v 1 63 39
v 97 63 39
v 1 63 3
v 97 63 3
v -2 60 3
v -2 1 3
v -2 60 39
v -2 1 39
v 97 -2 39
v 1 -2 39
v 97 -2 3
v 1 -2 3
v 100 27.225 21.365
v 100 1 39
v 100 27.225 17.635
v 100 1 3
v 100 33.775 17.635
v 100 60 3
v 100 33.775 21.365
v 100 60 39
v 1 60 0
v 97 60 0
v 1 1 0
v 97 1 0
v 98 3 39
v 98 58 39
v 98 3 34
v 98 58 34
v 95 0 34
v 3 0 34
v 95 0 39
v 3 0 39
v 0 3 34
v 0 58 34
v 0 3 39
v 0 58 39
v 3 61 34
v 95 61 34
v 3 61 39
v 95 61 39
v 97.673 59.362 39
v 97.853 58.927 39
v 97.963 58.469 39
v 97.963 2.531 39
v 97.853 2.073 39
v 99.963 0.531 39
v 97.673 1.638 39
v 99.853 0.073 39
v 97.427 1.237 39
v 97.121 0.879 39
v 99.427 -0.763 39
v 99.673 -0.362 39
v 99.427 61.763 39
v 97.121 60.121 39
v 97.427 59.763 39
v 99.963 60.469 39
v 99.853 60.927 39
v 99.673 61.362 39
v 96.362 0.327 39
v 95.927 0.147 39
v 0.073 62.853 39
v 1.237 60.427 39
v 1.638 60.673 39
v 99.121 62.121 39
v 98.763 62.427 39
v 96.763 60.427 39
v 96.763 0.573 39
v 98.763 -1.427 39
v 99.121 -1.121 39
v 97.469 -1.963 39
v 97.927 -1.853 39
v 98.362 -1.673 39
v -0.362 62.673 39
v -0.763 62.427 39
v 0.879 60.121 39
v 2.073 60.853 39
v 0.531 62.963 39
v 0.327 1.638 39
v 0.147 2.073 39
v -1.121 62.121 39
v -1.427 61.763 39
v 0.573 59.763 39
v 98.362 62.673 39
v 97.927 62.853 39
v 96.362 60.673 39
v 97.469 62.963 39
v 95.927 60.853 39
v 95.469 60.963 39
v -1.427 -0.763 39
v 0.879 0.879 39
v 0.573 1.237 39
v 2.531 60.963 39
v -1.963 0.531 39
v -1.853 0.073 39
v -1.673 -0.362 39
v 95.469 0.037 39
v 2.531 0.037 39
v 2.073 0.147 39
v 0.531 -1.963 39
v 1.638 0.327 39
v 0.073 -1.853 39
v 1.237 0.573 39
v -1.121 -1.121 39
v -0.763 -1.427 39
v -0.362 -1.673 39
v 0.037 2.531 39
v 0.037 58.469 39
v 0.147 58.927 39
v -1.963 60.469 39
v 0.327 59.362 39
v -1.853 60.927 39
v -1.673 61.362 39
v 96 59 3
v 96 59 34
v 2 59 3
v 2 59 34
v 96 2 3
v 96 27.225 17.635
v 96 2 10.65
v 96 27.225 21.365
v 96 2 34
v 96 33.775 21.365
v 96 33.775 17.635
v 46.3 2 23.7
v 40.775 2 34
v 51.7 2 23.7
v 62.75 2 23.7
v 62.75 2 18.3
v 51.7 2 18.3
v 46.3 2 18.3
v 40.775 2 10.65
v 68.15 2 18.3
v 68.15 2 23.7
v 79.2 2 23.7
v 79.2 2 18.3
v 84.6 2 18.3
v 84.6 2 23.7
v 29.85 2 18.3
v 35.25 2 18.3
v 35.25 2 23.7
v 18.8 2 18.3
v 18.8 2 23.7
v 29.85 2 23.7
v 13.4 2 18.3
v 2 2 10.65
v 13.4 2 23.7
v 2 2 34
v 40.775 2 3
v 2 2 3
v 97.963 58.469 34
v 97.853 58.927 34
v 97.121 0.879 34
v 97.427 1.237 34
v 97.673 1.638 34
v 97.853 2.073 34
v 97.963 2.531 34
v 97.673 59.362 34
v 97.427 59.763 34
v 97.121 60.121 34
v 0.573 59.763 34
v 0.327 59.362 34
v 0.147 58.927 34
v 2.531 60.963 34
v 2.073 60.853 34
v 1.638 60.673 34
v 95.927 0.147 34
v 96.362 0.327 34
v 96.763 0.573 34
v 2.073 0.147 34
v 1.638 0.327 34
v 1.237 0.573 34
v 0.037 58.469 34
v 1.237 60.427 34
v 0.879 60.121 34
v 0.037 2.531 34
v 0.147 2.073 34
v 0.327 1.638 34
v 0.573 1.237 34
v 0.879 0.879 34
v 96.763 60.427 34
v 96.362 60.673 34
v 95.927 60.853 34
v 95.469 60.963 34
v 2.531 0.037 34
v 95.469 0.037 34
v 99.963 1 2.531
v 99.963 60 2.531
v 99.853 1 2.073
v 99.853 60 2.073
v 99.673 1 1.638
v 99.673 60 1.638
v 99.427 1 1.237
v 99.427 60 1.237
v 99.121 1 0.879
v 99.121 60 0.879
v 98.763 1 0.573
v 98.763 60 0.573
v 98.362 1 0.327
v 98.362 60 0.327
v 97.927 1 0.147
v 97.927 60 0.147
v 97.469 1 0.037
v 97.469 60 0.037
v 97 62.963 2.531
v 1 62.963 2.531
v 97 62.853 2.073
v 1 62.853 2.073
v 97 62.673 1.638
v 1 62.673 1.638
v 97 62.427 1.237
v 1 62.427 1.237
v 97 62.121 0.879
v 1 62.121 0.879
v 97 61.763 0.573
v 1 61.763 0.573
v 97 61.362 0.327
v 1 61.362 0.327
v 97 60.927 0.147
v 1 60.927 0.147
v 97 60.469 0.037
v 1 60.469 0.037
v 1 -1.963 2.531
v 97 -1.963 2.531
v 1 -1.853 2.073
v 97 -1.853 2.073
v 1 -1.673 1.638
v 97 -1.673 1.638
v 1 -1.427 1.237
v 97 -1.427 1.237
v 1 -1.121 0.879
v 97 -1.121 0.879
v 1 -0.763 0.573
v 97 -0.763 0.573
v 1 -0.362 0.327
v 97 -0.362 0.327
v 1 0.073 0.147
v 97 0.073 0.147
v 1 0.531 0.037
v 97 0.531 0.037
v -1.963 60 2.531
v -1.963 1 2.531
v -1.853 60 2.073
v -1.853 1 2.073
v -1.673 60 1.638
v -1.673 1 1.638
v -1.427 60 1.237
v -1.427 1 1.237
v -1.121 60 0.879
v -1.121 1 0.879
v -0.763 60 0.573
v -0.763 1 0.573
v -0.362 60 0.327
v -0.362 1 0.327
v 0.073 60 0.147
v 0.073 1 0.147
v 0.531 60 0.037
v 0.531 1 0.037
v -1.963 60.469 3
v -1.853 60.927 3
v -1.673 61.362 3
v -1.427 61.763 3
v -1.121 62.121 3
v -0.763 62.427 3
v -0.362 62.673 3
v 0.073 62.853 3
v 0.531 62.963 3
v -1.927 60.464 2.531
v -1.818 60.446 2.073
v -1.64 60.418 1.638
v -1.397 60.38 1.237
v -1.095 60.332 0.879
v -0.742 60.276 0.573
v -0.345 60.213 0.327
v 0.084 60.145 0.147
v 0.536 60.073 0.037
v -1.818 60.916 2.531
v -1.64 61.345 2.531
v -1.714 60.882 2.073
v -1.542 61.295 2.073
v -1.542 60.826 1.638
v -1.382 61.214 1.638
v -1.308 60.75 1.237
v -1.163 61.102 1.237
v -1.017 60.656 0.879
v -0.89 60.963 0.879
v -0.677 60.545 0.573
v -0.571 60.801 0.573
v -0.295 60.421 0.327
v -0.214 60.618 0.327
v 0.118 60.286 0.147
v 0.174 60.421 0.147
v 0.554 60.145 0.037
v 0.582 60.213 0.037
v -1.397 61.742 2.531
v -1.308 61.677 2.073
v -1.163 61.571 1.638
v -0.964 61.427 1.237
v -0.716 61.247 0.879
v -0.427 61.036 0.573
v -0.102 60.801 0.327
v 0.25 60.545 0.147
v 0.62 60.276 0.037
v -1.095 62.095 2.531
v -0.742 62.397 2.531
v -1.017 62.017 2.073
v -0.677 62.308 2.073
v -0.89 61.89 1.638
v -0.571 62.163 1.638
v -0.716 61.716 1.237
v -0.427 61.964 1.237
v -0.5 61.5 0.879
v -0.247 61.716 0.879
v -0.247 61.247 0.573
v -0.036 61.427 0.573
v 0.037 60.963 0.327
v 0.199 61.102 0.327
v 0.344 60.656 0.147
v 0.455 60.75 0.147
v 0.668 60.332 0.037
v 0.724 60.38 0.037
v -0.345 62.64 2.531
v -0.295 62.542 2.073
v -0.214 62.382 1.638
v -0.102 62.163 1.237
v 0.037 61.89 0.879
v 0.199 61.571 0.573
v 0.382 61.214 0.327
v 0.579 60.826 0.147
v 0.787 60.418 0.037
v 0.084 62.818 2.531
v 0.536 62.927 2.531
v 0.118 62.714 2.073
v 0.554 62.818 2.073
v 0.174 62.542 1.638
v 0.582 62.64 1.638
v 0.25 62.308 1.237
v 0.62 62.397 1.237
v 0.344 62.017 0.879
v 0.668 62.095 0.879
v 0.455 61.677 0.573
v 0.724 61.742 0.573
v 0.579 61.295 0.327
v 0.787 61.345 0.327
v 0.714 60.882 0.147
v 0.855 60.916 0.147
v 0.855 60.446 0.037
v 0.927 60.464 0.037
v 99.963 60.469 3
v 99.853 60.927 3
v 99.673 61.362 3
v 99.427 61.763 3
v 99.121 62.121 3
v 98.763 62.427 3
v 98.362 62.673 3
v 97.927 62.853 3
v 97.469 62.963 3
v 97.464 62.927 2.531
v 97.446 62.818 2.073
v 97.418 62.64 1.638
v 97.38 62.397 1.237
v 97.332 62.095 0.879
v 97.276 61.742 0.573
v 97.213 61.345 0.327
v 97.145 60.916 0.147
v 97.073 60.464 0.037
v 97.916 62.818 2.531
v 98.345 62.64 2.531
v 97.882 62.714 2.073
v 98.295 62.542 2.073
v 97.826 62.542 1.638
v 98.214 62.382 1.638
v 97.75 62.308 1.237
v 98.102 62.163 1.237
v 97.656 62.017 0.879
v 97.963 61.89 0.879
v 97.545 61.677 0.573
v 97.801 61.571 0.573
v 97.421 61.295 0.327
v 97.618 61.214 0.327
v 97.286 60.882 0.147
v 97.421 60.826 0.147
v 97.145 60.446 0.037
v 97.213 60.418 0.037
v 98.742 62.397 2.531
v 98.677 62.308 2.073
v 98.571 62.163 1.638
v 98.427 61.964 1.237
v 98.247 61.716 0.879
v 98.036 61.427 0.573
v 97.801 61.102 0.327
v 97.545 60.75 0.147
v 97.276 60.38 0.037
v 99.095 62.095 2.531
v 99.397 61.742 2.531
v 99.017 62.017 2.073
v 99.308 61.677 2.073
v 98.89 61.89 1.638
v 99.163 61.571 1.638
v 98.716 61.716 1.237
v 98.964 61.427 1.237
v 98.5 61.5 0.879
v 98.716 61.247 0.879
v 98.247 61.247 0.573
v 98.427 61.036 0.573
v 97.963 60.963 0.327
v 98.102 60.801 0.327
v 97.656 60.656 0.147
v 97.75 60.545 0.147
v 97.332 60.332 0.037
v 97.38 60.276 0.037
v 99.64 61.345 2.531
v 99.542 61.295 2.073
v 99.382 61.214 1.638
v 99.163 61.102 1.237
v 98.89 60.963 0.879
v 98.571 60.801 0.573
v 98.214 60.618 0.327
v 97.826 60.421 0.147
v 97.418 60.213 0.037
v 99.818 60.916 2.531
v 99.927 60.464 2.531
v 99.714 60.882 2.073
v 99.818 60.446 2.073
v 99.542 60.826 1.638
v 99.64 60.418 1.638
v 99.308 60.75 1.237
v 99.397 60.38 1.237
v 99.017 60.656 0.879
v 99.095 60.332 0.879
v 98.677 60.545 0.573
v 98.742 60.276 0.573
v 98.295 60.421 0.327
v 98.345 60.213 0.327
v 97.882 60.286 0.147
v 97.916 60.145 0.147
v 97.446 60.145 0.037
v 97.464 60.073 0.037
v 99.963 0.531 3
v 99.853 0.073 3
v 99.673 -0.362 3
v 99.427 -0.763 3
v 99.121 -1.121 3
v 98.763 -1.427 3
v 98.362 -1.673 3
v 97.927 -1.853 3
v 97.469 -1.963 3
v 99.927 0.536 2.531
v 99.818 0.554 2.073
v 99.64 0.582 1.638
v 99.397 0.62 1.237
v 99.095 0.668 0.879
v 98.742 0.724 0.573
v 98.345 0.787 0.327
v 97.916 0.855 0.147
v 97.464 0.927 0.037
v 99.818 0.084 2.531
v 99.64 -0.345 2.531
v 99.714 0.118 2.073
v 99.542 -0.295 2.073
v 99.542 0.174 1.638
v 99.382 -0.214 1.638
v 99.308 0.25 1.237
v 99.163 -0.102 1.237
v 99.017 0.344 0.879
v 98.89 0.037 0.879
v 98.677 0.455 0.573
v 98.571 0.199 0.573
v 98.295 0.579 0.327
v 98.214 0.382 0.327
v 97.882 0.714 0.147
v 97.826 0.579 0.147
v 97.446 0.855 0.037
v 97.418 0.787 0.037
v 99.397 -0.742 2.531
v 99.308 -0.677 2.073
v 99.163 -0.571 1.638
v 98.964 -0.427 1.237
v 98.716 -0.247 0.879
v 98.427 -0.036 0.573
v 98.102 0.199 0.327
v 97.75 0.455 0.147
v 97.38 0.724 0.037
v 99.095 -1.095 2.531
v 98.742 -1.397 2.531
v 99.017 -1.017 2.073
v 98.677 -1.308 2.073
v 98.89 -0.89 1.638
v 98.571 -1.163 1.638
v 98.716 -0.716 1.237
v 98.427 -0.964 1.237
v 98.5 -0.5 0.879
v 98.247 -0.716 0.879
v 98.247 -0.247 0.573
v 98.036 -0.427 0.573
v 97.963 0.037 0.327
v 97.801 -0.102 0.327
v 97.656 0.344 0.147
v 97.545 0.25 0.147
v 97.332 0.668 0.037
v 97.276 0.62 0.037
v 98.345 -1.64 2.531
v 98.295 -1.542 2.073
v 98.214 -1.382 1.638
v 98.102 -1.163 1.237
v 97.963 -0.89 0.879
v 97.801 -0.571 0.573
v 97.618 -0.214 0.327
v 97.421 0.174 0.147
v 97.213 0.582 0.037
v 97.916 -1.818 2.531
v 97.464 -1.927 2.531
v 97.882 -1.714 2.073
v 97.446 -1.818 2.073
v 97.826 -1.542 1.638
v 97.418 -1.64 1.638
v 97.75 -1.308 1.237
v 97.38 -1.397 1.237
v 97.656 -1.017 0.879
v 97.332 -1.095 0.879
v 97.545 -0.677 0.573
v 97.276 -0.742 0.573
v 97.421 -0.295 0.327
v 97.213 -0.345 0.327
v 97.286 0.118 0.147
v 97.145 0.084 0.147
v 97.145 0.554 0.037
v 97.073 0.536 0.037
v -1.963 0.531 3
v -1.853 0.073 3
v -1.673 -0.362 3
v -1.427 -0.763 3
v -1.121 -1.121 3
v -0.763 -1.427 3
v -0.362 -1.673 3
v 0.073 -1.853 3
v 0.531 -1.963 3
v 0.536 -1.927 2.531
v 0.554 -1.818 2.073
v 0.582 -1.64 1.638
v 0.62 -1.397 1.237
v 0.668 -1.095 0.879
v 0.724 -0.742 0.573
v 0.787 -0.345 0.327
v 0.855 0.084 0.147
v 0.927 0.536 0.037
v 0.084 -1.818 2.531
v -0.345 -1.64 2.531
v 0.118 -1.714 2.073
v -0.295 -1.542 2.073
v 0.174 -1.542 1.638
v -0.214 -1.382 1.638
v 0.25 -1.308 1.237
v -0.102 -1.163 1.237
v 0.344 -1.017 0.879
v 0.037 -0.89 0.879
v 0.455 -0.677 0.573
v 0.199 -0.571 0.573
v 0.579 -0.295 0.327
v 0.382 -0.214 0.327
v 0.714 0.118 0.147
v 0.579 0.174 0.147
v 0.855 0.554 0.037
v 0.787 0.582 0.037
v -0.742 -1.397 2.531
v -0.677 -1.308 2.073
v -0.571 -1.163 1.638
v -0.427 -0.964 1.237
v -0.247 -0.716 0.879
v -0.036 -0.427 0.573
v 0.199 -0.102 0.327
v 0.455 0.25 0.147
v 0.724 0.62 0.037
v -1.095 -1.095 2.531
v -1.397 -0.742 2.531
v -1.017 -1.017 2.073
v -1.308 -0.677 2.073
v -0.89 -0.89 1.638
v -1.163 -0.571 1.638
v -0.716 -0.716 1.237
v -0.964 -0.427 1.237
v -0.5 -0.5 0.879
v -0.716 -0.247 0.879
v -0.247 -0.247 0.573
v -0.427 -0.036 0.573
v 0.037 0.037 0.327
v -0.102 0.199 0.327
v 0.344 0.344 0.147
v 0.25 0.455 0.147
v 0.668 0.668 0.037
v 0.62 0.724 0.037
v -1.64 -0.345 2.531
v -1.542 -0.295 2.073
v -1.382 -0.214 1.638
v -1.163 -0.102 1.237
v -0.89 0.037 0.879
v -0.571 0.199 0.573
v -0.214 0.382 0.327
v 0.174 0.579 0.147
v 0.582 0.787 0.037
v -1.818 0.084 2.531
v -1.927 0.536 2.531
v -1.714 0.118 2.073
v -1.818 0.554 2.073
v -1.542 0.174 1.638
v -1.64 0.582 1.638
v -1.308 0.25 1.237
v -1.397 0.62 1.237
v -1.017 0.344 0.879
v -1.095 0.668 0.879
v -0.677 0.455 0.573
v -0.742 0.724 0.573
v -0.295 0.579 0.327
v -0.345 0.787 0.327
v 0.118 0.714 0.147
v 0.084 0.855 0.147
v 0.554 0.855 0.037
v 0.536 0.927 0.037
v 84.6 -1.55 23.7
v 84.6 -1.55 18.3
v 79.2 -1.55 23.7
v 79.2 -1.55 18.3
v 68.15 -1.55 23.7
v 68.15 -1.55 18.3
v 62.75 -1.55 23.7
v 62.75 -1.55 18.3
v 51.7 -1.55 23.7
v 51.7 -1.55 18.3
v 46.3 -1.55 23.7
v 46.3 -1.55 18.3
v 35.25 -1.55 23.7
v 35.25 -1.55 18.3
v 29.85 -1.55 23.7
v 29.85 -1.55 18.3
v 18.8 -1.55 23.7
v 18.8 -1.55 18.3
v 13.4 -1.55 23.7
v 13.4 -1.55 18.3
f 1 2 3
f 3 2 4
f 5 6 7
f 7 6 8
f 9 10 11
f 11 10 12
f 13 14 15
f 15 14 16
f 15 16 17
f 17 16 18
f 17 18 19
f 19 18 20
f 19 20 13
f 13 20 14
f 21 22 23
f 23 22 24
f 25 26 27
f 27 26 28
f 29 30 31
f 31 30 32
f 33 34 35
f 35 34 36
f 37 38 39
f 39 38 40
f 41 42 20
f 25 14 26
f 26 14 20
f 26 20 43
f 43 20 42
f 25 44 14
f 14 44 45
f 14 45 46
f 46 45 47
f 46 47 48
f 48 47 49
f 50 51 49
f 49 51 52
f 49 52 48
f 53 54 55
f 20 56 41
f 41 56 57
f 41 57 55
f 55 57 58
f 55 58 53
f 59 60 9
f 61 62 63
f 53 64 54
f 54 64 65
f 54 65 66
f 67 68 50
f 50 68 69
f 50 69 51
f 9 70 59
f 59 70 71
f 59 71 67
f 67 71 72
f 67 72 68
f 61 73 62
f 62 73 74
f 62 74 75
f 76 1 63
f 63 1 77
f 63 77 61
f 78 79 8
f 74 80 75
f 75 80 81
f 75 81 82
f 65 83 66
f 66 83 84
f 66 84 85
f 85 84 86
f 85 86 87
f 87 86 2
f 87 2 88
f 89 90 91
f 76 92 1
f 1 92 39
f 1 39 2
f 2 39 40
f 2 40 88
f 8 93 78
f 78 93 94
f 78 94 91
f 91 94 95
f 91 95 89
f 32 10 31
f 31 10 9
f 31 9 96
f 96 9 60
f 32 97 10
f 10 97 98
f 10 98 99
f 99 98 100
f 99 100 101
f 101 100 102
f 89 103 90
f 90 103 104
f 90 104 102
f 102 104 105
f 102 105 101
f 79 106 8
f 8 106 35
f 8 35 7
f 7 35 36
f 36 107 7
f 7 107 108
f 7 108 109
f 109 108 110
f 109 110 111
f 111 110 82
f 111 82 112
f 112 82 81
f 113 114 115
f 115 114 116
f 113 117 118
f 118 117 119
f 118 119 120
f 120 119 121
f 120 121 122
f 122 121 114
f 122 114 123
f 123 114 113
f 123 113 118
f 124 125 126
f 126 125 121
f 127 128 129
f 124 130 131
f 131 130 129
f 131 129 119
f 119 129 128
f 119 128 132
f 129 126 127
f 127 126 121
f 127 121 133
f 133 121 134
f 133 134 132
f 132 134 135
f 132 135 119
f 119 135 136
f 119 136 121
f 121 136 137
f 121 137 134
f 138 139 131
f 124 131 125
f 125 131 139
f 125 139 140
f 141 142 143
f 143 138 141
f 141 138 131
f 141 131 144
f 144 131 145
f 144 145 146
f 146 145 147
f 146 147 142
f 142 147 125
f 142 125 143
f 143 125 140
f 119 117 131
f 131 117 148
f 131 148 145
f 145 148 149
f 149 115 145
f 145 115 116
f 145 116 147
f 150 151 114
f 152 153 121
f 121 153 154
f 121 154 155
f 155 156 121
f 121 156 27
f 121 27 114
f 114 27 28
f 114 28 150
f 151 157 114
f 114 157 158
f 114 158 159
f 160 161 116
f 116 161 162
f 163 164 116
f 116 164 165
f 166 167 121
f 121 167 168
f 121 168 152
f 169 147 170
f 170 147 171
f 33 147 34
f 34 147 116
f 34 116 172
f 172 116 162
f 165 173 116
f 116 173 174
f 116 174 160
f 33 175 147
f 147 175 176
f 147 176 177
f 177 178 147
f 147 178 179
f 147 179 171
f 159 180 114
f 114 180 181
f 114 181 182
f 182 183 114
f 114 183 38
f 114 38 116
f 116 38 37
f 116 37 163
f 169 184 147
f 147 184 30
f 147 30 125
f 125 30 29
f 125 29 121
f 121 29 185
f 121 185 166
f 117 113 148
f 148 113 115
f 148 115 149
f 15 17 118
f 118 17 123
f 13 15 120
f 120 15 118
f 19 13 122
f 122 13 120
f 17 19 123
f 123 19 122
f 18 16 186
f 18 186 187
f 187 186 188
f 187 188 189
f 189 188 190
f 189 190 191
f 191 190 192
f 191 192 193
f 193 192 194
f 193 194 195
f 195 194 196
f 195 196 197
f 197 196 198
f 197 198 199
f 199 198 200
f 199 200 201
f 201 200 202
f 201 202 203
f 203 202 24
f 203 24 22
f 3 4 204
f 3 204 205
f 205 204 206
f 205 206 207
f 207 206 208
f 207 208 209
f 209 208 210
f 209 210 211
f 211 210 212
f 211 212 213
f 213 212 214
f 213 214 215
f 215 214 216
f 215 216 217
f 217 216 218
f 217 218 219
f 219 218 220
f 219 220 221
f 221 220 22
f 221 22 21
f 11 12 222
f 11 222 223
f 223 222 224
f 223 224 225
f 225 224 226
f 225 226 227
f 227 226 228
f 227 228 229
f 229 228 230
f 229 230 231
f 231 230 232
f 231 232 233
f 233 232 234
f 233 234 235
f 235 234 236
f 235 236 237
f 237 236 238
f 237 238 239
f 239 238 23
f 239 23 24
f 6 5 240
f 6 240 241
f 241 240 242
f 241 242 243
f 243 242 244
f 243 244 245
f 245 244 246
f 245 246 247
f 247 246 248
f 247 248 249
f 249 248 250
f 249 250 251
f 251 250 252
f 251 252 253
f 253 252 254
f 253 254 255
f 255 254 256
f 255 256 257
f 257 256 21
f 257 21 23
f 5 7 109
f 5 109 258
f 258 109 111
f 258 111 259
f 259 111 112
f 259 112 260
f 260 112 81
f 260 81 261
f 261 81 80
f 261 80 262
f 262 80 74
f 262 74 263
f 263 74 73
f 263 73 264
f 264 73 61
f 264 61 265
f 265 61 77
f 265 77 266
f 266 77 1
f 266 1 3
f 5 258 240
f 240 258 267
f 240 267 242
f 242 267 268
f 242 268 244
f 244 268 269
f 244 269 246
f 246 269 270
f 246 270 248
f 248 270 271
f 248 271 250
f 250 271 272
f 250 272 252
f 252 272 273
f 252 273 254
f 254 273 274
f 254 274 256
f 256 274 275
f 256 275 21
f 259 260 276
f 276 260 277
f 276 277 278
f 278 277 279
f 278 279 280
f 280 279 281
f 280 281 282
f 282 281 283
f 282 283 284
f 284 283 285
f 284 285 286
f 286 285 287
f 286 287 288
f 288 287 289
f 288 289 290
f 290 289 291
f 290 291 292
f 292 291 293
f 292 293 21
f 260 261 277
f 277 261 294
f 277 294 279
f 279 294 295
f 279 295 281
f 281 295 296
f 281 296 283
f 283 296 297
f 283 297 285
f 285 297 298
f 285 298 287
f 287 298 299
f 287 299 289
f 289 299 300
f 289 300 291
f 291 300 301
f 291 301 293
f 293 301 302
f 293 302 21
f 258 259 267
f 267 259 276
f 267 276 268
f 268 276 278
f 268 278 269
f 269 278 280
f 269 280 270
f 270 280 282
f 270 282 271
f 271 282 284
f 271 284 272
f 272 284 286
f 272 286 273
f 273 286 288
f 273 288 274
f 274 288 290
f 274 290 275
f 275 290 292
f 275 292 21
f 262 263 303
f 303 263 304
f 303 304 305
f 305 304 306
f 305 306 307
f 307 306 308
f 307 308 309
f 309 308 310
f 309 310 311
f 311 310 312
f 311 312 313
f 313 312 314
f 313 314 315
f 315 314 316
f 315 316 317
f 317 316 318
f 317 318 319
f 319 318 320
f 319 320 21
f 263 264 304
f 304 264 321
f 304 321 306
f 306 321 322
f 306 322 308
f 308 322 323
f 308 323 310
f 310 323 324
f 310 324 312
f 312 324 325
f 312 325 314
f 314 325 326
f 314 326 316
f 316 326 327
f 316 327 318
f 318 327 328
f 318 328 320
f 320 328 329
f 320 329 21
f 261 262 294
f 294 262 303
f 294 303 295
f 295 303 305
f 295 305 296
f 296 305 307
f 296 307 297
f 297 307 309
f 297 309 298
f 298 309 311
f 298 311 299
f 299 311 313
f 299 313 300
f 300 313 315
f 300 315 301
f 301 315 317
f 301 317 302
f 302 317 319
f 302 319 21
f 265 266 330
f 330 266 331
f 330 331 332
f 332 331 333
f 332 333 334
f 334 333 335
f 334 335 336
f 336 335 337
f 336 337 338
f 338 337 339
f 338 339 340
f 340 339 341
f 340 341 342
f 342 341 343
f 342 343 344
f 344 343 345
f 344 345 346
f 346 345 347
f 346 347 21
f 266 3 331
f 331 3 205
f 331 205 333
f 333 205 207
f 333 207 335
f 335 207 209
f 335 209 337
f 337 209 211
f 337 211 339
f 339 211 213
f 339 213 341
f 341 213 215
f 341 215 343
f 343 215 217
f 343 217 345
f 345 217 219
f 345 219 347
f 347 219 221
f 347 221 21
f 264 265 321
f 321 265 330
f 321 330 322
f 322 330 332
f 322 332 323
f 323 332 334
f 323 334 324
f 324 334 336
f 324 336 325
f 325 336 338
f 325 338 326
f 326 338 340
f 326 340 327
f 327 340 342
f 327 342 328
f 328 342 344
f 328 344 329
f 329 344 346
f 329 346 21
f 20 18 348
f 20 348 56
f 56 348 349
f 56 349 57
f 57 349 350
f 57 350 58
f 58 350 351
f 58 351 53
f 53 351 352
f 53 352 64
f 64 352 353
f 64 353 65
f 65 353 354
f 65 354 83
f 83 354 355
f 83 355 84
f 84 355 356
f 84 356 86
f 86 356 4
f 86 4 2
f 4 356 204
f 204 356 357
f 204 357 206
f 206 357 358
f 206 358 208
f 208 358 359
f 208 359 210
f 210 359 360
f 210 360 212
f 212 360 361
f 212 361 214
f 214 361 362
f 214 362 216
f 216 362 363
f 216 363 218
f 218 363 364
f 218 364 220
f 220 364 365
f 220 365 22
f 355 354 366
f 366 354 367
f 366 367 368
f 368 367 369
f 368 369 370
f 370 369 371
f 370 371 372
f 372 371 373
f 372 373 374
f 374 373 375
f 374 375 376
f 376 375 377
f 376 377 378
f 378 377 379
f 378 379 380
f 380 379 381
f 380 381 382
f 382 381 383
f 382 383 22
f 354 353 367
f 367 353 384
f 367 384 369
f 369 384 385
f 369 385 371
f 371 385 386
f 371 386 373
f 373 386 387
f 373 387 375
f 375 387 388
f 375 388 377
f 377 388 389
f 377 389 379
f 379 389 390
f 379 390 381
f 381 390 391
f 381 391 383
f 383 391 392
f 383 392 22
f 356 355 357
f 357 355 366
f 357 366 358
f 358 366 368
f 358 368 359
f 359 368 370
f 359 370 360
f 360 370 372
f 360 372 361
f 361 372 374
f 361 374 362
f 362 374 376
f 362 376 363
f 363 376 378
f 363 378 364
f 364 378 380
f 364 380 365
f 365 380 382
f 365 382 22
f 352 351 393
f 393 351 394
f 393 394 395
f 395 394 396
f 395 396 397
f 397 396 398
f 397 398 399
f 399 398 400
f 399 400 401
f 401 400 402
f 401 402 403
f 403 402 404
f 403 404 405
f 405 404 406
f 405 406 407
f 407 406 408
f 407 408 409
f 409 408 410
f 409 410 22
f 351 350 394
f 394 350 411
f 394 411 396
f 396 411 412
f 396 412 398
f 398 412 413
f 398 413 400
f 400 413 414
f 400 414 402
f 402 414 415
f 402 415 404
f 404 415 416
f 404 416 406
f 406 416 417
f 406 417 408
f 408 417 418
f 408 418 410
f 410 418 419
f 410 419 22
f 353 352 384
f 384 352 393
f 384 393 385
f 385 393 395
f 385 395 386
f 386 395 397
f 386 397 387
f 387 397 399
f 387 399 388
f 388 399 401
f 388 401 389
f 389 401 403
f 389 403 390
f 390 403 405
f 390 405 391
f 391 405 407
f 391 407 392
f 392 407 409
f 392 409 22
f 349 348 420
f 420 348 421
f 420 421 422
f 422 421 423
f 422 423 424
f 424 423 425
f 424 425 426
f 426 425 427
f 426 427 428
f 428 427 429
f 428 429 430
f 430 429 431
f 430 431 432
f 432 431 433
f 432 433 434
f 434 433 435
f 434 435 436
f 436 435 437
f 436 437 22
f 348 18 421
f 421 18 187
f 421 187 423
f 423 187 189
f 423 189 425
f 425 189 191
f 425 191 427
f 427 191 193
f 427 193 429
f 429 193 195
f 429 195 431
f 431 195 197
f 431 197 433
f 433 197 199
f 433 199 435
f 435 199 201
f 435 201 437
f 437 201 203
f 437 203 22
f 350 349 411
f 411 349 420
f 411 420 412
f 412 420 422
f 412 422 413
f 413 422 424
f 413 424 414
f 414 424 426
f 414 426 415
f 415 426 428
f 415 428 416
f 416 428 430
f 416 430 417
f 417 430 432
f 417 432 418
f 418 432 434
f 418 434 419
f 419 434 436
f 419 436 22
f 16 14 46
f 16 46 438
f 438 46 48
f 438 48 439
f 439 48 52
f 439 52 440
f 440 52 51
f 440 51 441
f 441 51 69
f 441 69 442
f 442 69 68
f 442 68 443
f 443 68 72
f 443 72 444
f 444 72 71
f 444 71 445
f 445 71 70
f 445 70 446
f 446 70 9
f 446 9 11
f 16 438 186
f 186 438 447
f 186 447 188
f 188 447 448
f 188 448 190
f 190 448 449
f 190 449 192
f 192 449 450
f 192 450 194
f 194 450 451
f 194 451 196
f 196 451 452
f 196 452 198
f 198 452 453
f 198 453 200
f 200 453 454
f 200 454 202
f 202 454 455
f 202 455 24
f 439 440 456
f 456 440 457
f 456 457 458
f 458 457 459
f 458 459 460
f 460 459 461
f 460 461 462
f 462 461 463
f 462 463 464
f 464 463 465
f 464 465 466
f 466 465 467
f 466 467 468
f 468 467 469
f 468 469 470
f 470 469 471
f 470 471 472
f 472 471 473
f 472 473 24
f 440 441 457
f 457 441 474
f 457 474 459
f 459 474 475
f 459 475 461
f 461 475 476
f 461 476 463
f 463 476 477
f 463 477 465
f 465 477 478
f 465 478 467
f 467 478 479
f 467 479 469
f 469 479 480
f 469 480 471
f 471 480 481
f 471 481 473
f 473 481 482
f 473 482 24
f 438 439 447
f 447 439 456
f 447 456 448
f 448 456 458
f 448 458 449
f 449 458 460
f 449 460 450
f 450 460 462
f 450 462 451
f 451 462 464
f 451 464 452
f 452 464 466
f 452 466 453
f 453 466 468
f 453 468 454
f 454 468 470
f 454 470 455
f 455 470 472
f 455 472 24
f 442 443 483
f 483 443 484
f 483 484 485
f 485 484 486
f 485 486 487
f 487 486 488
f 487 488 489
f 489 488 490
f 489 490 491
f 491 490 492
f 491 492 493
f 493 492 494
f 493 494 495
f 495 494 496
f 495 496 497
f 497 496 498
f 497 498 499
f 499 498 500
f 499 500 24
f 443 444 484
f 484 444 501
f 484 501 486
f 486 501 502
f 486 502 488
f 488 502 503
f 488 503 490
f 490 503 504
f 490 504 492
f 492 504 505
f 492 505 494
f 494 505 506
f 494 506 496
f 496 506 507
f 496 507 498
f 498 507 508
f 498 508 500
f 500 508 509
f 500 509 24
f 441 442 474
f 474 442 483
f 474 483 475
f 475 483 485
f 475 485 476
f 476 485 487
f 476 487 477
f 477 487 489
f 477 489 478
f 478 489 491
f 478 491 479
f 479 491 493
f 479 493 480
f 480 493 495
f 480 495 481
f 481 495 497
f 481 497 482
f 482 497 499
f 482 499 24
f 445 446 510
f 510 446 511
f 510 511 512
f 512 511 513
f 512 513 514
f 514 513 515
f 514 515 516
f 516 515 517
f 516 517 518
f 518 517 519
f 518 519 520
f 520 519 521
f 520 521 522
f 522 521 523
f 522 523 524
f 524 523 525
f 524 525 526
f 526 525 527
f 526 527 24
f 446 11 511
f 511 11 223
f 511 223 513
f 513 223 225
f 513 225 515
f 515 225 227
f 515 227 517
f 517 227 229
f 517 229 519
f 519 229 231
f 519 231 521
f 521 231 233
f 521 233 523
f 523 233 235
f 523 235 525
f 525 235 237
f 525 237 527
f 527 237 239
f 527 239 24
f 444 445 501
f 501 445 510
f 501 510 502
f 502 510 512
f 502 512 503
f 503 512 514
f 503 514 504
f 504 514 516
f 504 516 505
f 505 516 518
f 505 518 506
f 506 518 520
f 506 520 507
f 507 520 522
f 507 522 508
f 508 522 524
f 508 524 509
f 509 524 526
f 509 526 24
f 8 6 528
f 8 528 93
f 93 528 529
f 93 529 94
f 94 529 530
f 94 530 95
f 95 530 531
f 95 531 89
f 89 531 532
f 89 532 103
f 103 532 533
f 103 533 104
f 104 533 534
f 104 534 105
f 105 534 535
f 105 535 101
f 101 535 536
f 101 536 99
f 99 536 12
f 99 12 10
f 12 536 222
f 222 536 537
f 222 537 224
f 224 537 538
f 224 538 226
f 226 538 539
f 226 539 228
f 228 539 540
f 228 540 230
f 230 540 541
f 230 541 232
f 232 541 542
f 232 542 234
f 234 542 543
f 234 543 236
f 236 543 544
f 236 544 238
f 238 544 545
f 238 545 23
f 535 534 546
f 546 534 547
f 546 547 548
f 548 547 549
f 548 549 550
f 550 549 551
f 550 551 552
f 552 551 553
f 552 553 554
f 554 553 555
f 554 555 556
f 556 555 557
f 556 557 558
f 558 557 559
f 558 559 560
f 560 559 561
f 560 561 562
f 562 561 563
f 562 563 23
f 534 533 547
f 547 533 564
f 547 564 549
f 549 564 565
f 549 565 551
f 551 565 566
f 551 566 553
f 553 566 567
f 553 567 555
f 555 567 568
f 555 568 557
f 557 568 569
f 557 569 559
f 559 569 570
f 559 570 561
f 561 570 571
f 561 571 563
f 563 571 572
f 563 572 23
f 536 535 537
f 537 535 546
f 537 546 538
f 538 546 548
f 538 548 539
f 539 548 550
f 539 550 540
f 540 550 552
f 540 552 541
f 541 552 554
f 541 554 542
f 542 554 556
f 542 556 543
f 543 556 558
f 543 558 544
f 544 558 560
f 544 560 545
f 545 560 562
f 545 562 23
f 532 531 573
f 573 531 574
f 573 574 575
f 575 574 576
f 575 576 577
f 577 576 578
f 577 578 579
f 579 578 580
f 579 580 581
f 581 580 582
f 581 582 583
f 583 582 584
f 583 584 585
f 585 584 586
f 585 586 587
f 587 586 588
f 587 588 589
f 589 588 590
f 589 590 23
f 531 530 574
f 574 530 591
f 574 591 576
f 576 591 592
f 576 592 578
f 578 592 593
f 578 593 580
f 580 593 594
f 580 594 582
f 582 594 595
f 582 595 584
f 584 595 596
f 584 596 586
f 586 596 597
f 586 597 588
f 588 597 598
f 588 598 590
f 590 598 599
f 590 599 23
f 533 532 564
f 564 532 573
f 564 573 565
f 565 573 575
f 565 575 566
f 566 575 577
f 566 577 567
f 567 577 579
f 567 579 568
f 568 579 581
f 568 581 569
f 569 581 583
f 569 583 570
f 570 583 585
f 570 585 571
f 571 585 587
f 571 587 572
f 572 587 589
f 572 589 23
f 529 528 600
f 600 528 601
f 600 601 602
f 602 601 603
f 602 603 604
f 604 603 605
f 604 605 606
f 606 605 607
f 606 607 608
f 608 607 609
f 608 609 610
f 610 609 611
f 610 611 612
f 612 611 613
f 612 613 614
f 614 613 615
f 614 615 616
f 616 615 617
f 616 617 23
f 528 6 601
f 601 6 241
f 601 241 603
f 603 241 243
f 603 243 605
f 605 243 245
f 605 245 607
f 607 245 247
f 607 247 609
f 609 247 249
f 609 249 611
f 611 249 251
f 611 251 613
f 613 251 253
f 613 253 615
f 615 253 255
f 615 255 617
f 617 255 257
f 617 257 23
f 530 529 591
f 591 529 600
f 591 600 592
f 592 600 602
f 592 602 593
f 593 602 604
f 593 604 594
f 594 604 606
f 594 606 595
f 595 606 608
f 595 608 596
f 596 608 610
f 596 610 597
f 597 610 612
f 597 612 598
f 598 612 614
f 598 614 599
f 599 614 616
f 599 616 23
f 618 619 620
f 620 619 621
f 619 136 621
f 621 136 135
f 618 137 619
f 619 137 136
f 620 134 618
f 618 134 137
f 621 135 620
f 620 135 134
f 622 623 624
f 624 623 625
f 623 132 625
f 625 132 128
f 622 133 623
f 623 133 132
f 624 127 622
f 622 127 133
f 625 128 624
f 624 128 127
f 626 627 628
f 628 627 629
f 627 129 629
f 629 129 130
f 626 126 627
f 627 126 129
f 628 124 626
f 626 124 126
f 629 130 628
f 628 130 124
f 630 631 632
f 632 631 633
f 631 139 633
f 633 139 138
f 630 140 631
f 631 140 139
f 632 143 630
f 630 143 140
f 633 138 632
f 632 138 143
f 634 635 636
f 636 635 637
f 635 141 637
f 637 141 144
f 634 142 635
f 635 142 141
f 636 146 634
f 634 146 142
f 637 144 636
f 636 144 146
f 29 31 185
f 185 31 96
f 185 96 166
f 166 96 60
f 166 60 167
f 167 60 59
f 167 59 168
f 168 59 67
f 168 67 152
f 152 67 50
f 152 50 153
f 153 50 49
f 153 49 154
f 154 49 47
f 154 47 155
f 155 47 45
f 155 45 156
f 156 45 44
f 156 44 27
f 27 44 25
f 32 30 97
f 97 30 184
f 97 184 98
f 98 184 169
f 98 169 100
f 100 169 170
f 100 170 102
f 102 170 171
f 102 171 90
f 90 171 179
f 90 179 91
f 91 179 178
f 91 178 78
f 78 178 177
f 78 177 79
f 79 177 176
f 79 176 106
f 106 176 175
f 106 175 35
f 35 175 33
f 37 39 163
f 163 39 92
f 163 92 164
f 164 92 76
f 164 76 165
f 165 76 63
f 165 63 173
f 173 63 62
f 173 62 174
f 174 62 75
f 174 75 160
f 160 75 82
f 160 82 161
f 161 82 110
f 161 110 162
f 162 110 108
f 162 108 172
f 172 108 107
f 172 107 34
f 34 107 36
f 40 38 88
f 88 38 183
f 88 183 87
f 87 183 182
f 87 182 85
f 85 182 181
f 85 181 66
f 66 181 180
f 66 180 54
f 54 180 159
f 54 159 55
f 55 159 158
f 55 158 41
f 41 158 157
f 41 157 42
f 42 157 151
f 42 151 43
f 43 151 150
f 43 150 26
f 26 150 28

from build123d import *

# Parameters (mm, degrees)
SKICA1_W                 = 102
SKICA1_H                 = 65
P_IDAT_VYSUNUT_M1_DEPTH  = 3
SKICA1_4_W               = 102
SKICA1_4_H               = 65
SKICA1_4_W_2             = 98
SKICA1_4_H_2             = 61
P_IDAT_VYSUNUT_M2_DEPTH  = 39
SKICA1_5_W               = 98
SKICA1_5_H               = 61
SKICA1_5_W_2             = 94
SKICA1_5_H_2             = 57
P_IDAT_VYSUNUT_M3_DEPTH  = 34
SKICA2_W                 = 3.73
SKICA2_H                 = 6.55
ODEBRAT_VYSUNUT_M1_DEPTH = 4
ZAOBLIT1_R               = 3
ZAOBLIT2_R               = 3
ODEBRAT_START            = -0.45
SKICA4_W                 = 5.4
SKICA4_H                 = 5.4
ODEBRAT_VYSUNUT_M2_DEPTH = 3.55
ZAOBLIT3_R               = 3


with BuildPart() as part:
    # Skica1 → Přidat vysunutím1 (new body)
    with BuildSketch(Plane.XY):
        with Locations((49, 30.5)):
            Rectangle(SKICA1_W, SKICA1_H)
    extrude(amount=P_IDAT_VYSUNUT_M1_DEPTH)

    # Skica1<4> → Přidat vysunutím2 (add)
    with BuildSketch(Plane.XY):
        with Locations((49, 30.5)):
            Rectangle(SKICA1_4_W, SKICA1_4_H)
        with Locations((49, 30.5)):
            Rectangle(SKICA1_4_W_2, SKICA1_4_H_2, mode=Mode.SUBTRACT)
    extrude(amount=P_IDAT_VYSUNUT_M2_DEPTH)

    # Skica1<5> → Přidat vysunutím3 (add)
    with BuildSketch(Plane.XY):
        with Locations((49, 30.5)):
            Rectangle(SKICA1_5_W, SKICA1_5_H)
        with Locations((49, 30.5)):
            Rectangle(SKICA1_5_W_2, SKICA1_5_H_2, mode=Mode.SUBTRACT)
    extrude(amount=P_IDAT_VYSUNUT_M3_DEPTH)

    # Skica2 → Odebrat vysunutím1 (cut)
    with BuildSketch(Plane(origin=(100, 0, 0), x_dir=(0, 0, -1), z_dir=(1, 0, 0))):
        with Locations((-19.5, 30.5)):
            Rectangle(SKICA2_W, SKICA2_H)
    extrude(amount=-ODEBRAT_VYSUNUT_M1_DEPTH, mode=Mode.SUBTRACT)

    # Zaoblit1
    zaoblit1_edges = [part.edges().sort_by_distance(p)[0] for p in [
        (-2, 30.5, 0),
        (49, -2, 0),
        (100, 30.5, 0),
        (49, 63, 0),
    ]]
    fillet(zaoblit1_edges, radius=ZAOBLIT1_R)

    # Zaoblit2
    # the kernel refuses this fillet: 3 mm, written as the material it takes off along each edge
    with BuildSketch(Plane(origin=(97, 60, 3), x_dir=(1, 0, 0), z_dir=(0, 1, 0))) as zaoblit2_piece_1_section:
        Polygon((0, 0), (ZAOBLIT2_R, 0), (ZAOBLIT2_R, ZAOBLIT2_R), (0, ZAOBLIT2_R), align=None)
    zaoblit2_piece_1 = extrude(amount=ZAOBLIT2_R, mode=Mode.PRIVATE)
    zaoblit2_piece_1 = zaoblit2_piece_1 - Plane(origin=(97, 60, 3), x_dir=(-0.7071067811865475, 0, 0.7071067811865475), z_dir=(0, 1, 0)) * Sphere(ZAOBLIT2_R, mode=Mode.PRIVATE)
    add(zaoblit2_piece_1, mode=Mode.SUBTRACT)
    with BuildSketch(Plane(origin=(97, 1, 3), x_dir=(0, -1, 0), z_dir=(1, 0, 0))) as zaoblit2_piece_2_section:
        Polygon((0, 0), (ZAOBLIT2_R, 0), (ZAOBLIT2_R, ZAOBLIT2_R), (0, ZAOBLIT2_R), align=None)
    zaoblit2_piece_2 = extrude(amount=ZAOBLIT2_R, mode=Mode.PRIVATE)
    zaoblit2_piece_2 = zaoblit2_piece_2 - Plane(origin=(97, 1, 3), x_dir=(0, 0.7071067811865475, 0.7071067811865475), z_dir=(1, 0, 0)) * Sphere(ZAOBLIT2_R, mode=Mode.PRIVATE)
    add(zaoblit2_piece_2, mode=Mode.SUBTRACT)
    with BuildSketch(Plane(origin=(1, 60, 3), x_dir=(-1, 0, 0), z_dir=(0, 1, 0))) as zaoblit2_piece_3_section:
        Polygon((0, 0), (ZAOBLIT2_R, 0), (ZAOBLIT2_R, -ZAOBLIT2_R), (0, -ZAOBLIT2_R), align=None)
    zaoblit2_piece_3 = extrude(amount=ZAOBLIT2_R, mode=Mode.PRIVATE)
    zaoblit2_piece_3 = zaoblit2_piece_3 - Plane(origin=(1, 60, 3), x_dir=(0.7071067811865475, 0, 0.7071067811865475), z_dir=(0, 1, 0)) * Sphere(ZAOBLIT2_R, mode=Mode.PRIVATE)
    add(zaoblit2_piece_3, mode=Mode.SUBTRACT)
    with BuildSketch(Plane(origin=(1, 1, 3), x_dir=(0, -1, 0), z_dir=(-1, 0, 0))) as zaoblit2_piece_4_section:
        Polygon((0, 0), (ZAOBLIT2_R, 0), (ZAOBLIT2_R, -ZAOBLIT2_R), (0, -ZAOBLIT2_R), align=None)
    zaoblit2_piece_4 = extrude(amount=ZAOBLIT2_R, mode=Mode.PRIVATE)
    zaoblit2_piece_4 = zaoblit2_piece_4 - Plane(origin=(1, 1, 3), x_dir=(0, 0.7071067811865475, 0.7071067811865475), z_dir=(-1, 0, 0)) * Sphere(ZAOBLIT2_R, mode=Mode.PRIVATE)
    add(zaoblit2_piece_4, mode=Mode.SUBTRACT)
    with BuildSketch(Plane(origin=(-2, 63, 3), x_dir=(1, 0, 0), z_dir=(0, 0, 1)), Plane(origin=(-2, -2, 3), x_dir=(0, 1, 0), z_dir=(0, 0, 1)), Plane(origin=(100, -2, 46.5), x_dir=(0, 1, 0), z_dir=(0, 0, -1)), Plane(origin=(100, 63, 46.5), x_dir=(-1, 0, 0), z_dir=(0, 0, -1))) as zaoblit2_piece_5:
        with BuildLine():
            CenterArc((ZAOBLIT2_R, -ZAOBLIT2_R), ZAOBLIT2_R, 90, 90)
            Line((0, -ZAOBLIT2_R), (0, 0))
            Line((0, 0), (ZAOBLIT2_R, 0))
        make_face()
    extrude(amount=43.5, mode=Mode.SUBTRACT)

    # Skica4 → Odebrat vysunutím2 (cut)
    with BuildSketch(Plane.XZ.offset(2).offset(ODEBRAT_START)):
        with Locations((16.1, 21)):
            Rectangle(SKICA4_W, SKICA4_H)
        with Locations((32.55, 21)):
            Rectangle(SKICA4_W, SKICA4_H)
        with Locations((49, 21)):
            Rectangle(SKICA4_W, SKICA4_H)
        with Locations((65.45, 21)):
            Rectangle(SKICA4_W, SKICA4_H)
        with Locations((81.9, 21)):
            Rectangle(SKICA4_W, SKICA4_H)
    extrude(amount=-ODEBRAT_VYSUNUT_M2_DEPTH, mode=Mode.SUBTRACT)

    # Zaoblit3
    zaoblit3_edges = [part.edges().sort_by_distance(p)[0] for p in [
        (98, 61, 36.5),
        (98, 0, 36.5),
        (0, 0, 36.5),
        (0, 61, 36.5),
    ]]
    fillet(zaoblit3_edges, radius=ZAOBLIT3_R)


solid = part.part
